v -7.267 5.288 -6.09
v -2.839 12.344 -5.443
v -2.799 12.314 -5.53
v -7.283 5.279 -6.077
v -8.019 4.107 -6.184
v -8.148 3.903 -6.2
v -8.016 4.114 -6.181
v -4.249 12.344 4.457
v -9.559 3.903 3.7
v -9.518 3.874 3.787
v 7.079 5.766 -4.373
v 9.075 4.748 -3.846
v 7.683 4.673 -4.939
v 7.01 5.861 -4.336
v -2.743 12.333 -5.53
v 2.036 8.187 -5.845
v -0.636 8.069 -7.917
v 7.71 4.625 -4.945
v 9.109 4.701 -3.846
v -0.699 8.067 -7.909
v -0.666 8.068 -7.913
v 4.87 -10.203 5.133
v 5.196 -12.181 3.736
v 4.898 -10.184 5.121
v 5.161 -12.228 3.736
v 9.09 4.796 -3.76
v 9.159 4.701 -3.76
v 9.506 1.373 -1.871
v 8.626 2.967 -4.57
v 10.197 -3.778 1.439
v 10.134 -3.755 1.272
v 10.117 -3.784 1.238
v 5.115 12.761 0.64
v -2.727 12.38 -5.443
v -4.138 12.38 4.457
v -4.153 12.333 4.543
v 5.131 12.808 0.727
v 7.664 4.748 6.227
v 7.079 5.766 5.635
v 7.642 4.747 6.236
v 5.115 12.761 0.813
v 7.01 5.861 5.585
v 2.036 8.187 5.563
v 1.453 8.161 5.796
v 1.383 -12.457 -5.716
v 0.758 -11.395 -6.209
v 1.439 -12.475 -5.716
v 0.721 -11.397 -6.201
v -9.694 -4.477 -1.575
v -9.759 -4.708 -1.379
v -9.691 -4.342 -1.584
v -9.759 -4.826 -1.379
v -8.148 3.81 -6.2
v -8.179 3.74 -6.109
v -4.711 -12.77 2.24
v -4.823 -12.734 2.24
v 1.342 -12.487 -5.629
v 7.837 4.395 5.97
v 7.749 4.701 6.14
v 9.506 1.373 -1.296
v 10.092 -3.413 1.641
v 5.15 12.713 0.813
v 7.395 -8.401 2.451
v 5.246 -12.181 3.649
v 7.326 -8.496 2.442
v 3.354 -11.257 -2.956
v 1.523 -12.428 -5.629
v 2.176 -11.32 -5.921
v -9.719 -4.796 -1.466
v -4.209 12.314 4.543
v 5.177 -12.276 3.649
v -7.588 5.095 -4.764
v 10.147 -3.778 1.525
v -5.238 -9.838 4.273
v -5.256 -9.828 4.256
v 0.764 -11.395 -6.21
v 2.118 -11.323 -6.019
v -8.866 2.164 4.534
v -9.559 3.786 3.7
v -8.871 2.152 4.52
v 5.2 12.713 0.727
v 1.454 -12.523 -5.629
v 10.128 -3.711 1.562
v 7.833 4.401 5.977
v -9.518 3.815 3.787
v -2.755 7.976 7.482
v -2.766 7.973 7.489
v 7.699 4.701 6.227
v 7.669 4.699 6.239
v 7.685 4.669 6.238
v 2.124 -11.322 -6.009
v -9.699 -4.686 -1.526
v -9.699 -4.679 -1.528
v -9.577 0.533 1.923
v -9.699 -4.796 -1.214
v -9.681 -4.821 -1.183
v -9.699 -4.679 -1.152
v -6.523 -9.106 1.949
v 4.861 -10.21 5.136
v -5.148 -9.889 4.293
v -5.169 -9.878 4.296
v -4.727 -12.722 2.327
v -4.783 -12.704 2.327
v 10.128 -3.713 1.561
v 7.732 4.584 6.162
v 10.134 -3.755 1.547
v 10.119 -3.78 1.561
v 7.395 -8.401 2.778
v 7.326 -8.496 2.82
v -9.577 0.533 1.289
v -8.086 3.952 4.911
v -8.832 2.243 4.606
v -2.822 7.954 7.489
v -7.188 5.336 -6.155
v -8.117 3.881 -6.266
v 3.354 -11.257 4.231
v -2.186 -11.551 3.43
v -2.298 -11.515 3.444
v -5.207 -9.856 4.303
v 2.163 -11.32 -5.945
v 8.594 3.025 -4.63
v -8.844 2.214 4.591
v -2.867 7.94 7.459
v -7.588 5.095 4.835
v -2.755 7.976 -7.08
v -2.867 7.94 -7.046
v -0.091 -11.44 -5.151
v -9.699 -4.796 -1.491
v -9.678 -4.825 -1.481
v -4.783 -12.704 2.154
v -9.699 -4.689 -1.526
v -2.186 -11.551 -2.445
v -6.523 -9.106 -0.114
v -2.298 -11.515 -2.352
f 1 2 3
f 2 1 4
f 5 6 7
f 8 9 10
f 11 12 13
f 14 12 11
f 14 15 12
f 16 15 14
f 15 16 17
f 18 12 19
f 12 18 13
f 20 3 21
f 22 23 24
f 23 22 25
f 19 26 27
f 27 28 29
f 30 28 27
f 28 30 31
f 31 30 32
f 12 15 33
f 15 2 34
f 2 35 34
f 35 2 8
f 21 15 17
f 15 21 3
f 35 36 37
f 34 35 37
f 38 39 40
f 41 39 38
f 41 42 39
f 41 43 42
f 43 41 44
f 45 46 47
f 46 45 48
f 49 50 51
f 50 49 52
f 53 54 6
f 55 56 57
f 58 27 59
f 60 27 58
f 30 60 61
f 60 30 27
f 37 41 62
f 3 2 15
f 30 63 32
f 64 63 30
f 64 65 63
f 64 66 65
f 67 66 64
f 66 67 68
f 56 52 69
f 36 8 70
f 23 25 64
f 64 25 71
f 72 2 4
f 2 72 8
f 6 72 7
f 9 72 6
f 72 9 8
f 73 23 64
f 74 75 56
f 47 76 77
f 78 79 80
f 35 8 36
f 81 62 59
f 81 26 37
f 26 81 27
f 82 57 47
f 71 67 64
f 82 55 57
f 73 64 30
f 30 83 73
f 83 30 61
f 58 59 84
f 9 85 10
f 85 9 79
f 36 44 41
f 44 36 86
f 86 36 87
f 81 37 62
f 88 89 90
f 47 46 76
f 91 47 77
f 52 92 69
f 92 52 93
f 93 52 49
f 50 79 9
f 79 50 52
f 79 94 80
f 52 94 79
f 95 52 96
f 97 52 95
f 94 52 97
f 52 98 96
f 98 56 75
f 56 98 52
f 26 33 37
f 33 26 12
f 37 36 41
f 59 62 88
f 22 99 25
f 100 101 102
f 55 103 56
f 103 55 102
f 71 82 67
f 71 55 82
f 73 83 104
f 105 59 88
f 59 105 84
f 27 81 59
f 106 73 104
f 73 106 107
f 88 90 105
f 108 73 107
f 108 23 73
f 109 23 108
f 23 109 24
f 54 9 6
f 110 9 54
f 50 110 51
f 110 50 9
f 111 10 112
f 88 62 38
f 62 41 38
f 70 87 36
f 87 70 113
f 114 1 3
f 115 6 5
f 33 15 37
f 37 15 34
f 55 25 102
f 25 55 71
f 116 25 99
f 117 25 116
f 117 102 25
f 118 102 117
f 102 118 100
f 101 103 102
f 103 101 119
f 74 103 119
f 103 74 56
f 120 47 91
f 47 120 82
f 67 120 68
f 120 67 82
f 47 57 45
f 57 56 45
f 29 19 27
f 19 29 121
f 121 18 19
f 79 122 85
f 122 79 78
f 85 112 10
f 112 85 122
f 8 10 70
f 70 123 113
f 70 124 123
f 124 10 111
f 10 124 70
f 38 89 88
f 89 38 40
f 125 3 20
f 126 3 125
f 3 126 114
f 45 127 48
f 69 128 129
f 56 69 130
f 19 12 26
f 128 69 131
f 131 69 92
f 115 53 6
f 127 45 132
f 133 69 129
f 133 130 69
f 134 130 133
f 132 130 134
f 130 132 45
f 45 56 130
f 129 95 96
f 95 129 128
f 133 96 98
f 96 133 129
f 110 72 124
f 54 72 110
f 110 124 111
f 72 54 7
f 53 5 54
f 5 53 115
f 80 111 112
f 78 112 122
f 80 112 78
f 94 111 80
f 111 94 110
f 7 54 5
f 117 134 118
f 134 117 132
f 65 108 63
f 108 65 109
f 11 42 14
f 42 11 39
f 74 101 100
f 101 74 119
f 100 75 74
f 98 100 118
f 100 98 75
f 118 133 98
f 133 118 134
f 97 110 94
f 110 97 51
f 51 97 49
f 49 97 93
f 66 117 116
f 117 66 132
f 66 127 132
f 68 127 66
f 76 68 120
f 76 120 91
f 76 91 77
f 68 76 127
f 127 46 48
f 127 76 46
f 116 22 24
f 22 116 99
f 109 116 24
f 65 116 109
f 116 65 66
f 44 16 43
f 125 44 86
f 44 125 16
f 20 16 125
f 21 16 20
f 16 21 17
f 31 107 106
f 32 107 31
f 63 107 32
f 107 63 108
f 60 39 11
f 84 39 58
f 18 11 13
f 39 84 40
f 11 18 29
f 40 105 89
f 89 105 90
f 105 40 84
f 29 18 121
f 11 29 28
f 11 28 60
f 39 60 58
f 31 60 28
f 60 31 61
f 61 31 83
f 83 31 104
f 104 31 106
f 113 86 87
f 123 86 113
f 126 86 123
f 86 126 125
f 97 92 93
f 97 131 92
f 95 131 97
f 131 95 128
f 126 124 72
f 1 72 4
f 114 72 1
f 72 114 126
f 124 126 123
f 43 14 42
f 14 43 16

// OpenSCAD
// Auto-generated OpenSCAD file

    inner_points = 10*[[-0.9496117063645658, 0.04744255494879848, -0.4691531418453987], [1.0033624630947084, -0.3755390051682693, -0.3856157656249948], [-0.2785657017526601, 0.7881225693198912, -0.43613229985679836], [-0.6441706262468343, -0.9047282394808283, -0.460405295723797], [0.697921382976977, 0.5766317892613573, -0.3943636117465964], [0.33231645848280283, -1.1162190195393622, -0.41863660761359506], [-0.7507105153515918, 0.5036271349789806, 0.39821871909793793], [-0.961792616925356, -0.4737407351799904, 0.3842046984000876], [0.9406147283349547, 0.13731435858522523, 0.47056420907030583], [0.7295326267611906, -0.8400535115737459, 0.4565501883724555], [0.2004931572785636, 0.8091546818615886, 0.44139847443304703], [-0.22167104586896497, -1.1455810584563535, 0.4133704330373464], [-0.4865502109048858, -0.3364700228427917, -1.2680180766347915], [0.48993687382475126, -0.5479608029013256, -1.2262493885245895], [0.18449579370701985, 0.40420999152830095, -1.2349972346461915], [-0.22268754129996676, 0.3775482624765989, 1.2380376619553881], [-0.43376964287373104, -0.5998196076823722, 1.2240236412575376], [0.5174340297564245, -0.29429206079976433, 1.2672033965926468]];

    outer_points = 10*[[-0.1619876991428545, 0.42727685980119834, 0.9870193373470707], [0.1201169529545242, 0.42727685980119834, -0.992984946806127], [0.7648573506247376, 0.4700858108095228, 0.6140238314292694], [-0.9477804228617573, 0.3844679087928739, 0.370012701188273], [0.9059096766734269, 0.4700858108095228, -0.37597831064732945], [-0.806728096813068, 0.3844679087928739, -0.6199894408883259], [0.3931764152464893, -0.40256110041281673, 0.930789755433826], [-0.5956154643002599, -0.45199261918957995, 0.7899098637039218], [0.6374862104885902, -0.40256110041281673, -0.7839442542448654], [-0.35130566905815896, -0.45199261918957995, -0.9248241459747696], [1.0097272526409142, -0.3778453410244351, 0.14386269645943234], [-0.967856506452584, -0.47670837857796156, -0.13789708700037592], [-0.4168583108991429, 1.228505635767035, 0.44565677877170834], [-0.27580598485045354, 1.228505635767035, -0.5443453633048905], [0.5099867388684493, 1.2713145867753595, 0.07266127285390714], [0.5145701595267401, -1.2180595267147616, 0.36490471803782565], [-0.47422172002000895, -1.2674910454915247, 0.2240248263079215], [0.14232911737441603, -1.2427752861031431, -0.5629022326664721]];

    // Convex hull for inner set (I)
    module inner_hull() {
        hull() {
            for (p = inner_points) {
                translate(p) sphere(r=0.1);
            }
        }
    }

    // Convex hull for outer set (O) minus inner hull (O \ I)
    module outer_minus_inner() {
        difference() {
            hull() {
                for (p = outer_points) {
                    translate(p) sphere(r=0.1);
                }
            }
            inner_hull(); // Subtract inner hull
        }
    }

    // Convex hull for outer set (O) minus all translated inner hulls
    module outer_minus_AllTranslationInner() {
        difference() {
            hull() {
                for (p = outer_points) {
                    translate(p) sphere(r=0.1);
                }
            }
            hull() {
                translate([0,0,50]) inner_hull();
                translate([0,0,-50]) inner_hull();
            }; // Subtract translated inner hulls
        }
    }

    // Difference between outer_minus_inner and outer_minus_AllTranslationInner
    module outer_minus_inner_diff() {
        difference() {
            // Outer minus inner
            difference() {
                hull() {
                    for (p = outer_points) {
                        translate(p) sphere(r=0.1);
                    }
                }
                inner_hull();
            }

            // Subtract Outer minus AllTranslationInner
            difference() {
                hull() {
                    for (p = outer_points) {
                        translate(p) sphere(r=0.1);
                    }
                }
                hull() {
                    translate([0,0,50]) inner_hull();
                    translate([0,0,-50]) inner_hull();
                };
            }
        }
    }

    // Rendering all with colors applied
    color([0, 1, 0, 1]) outer_minus_AllTranslationInner(); // Opaque green
    
